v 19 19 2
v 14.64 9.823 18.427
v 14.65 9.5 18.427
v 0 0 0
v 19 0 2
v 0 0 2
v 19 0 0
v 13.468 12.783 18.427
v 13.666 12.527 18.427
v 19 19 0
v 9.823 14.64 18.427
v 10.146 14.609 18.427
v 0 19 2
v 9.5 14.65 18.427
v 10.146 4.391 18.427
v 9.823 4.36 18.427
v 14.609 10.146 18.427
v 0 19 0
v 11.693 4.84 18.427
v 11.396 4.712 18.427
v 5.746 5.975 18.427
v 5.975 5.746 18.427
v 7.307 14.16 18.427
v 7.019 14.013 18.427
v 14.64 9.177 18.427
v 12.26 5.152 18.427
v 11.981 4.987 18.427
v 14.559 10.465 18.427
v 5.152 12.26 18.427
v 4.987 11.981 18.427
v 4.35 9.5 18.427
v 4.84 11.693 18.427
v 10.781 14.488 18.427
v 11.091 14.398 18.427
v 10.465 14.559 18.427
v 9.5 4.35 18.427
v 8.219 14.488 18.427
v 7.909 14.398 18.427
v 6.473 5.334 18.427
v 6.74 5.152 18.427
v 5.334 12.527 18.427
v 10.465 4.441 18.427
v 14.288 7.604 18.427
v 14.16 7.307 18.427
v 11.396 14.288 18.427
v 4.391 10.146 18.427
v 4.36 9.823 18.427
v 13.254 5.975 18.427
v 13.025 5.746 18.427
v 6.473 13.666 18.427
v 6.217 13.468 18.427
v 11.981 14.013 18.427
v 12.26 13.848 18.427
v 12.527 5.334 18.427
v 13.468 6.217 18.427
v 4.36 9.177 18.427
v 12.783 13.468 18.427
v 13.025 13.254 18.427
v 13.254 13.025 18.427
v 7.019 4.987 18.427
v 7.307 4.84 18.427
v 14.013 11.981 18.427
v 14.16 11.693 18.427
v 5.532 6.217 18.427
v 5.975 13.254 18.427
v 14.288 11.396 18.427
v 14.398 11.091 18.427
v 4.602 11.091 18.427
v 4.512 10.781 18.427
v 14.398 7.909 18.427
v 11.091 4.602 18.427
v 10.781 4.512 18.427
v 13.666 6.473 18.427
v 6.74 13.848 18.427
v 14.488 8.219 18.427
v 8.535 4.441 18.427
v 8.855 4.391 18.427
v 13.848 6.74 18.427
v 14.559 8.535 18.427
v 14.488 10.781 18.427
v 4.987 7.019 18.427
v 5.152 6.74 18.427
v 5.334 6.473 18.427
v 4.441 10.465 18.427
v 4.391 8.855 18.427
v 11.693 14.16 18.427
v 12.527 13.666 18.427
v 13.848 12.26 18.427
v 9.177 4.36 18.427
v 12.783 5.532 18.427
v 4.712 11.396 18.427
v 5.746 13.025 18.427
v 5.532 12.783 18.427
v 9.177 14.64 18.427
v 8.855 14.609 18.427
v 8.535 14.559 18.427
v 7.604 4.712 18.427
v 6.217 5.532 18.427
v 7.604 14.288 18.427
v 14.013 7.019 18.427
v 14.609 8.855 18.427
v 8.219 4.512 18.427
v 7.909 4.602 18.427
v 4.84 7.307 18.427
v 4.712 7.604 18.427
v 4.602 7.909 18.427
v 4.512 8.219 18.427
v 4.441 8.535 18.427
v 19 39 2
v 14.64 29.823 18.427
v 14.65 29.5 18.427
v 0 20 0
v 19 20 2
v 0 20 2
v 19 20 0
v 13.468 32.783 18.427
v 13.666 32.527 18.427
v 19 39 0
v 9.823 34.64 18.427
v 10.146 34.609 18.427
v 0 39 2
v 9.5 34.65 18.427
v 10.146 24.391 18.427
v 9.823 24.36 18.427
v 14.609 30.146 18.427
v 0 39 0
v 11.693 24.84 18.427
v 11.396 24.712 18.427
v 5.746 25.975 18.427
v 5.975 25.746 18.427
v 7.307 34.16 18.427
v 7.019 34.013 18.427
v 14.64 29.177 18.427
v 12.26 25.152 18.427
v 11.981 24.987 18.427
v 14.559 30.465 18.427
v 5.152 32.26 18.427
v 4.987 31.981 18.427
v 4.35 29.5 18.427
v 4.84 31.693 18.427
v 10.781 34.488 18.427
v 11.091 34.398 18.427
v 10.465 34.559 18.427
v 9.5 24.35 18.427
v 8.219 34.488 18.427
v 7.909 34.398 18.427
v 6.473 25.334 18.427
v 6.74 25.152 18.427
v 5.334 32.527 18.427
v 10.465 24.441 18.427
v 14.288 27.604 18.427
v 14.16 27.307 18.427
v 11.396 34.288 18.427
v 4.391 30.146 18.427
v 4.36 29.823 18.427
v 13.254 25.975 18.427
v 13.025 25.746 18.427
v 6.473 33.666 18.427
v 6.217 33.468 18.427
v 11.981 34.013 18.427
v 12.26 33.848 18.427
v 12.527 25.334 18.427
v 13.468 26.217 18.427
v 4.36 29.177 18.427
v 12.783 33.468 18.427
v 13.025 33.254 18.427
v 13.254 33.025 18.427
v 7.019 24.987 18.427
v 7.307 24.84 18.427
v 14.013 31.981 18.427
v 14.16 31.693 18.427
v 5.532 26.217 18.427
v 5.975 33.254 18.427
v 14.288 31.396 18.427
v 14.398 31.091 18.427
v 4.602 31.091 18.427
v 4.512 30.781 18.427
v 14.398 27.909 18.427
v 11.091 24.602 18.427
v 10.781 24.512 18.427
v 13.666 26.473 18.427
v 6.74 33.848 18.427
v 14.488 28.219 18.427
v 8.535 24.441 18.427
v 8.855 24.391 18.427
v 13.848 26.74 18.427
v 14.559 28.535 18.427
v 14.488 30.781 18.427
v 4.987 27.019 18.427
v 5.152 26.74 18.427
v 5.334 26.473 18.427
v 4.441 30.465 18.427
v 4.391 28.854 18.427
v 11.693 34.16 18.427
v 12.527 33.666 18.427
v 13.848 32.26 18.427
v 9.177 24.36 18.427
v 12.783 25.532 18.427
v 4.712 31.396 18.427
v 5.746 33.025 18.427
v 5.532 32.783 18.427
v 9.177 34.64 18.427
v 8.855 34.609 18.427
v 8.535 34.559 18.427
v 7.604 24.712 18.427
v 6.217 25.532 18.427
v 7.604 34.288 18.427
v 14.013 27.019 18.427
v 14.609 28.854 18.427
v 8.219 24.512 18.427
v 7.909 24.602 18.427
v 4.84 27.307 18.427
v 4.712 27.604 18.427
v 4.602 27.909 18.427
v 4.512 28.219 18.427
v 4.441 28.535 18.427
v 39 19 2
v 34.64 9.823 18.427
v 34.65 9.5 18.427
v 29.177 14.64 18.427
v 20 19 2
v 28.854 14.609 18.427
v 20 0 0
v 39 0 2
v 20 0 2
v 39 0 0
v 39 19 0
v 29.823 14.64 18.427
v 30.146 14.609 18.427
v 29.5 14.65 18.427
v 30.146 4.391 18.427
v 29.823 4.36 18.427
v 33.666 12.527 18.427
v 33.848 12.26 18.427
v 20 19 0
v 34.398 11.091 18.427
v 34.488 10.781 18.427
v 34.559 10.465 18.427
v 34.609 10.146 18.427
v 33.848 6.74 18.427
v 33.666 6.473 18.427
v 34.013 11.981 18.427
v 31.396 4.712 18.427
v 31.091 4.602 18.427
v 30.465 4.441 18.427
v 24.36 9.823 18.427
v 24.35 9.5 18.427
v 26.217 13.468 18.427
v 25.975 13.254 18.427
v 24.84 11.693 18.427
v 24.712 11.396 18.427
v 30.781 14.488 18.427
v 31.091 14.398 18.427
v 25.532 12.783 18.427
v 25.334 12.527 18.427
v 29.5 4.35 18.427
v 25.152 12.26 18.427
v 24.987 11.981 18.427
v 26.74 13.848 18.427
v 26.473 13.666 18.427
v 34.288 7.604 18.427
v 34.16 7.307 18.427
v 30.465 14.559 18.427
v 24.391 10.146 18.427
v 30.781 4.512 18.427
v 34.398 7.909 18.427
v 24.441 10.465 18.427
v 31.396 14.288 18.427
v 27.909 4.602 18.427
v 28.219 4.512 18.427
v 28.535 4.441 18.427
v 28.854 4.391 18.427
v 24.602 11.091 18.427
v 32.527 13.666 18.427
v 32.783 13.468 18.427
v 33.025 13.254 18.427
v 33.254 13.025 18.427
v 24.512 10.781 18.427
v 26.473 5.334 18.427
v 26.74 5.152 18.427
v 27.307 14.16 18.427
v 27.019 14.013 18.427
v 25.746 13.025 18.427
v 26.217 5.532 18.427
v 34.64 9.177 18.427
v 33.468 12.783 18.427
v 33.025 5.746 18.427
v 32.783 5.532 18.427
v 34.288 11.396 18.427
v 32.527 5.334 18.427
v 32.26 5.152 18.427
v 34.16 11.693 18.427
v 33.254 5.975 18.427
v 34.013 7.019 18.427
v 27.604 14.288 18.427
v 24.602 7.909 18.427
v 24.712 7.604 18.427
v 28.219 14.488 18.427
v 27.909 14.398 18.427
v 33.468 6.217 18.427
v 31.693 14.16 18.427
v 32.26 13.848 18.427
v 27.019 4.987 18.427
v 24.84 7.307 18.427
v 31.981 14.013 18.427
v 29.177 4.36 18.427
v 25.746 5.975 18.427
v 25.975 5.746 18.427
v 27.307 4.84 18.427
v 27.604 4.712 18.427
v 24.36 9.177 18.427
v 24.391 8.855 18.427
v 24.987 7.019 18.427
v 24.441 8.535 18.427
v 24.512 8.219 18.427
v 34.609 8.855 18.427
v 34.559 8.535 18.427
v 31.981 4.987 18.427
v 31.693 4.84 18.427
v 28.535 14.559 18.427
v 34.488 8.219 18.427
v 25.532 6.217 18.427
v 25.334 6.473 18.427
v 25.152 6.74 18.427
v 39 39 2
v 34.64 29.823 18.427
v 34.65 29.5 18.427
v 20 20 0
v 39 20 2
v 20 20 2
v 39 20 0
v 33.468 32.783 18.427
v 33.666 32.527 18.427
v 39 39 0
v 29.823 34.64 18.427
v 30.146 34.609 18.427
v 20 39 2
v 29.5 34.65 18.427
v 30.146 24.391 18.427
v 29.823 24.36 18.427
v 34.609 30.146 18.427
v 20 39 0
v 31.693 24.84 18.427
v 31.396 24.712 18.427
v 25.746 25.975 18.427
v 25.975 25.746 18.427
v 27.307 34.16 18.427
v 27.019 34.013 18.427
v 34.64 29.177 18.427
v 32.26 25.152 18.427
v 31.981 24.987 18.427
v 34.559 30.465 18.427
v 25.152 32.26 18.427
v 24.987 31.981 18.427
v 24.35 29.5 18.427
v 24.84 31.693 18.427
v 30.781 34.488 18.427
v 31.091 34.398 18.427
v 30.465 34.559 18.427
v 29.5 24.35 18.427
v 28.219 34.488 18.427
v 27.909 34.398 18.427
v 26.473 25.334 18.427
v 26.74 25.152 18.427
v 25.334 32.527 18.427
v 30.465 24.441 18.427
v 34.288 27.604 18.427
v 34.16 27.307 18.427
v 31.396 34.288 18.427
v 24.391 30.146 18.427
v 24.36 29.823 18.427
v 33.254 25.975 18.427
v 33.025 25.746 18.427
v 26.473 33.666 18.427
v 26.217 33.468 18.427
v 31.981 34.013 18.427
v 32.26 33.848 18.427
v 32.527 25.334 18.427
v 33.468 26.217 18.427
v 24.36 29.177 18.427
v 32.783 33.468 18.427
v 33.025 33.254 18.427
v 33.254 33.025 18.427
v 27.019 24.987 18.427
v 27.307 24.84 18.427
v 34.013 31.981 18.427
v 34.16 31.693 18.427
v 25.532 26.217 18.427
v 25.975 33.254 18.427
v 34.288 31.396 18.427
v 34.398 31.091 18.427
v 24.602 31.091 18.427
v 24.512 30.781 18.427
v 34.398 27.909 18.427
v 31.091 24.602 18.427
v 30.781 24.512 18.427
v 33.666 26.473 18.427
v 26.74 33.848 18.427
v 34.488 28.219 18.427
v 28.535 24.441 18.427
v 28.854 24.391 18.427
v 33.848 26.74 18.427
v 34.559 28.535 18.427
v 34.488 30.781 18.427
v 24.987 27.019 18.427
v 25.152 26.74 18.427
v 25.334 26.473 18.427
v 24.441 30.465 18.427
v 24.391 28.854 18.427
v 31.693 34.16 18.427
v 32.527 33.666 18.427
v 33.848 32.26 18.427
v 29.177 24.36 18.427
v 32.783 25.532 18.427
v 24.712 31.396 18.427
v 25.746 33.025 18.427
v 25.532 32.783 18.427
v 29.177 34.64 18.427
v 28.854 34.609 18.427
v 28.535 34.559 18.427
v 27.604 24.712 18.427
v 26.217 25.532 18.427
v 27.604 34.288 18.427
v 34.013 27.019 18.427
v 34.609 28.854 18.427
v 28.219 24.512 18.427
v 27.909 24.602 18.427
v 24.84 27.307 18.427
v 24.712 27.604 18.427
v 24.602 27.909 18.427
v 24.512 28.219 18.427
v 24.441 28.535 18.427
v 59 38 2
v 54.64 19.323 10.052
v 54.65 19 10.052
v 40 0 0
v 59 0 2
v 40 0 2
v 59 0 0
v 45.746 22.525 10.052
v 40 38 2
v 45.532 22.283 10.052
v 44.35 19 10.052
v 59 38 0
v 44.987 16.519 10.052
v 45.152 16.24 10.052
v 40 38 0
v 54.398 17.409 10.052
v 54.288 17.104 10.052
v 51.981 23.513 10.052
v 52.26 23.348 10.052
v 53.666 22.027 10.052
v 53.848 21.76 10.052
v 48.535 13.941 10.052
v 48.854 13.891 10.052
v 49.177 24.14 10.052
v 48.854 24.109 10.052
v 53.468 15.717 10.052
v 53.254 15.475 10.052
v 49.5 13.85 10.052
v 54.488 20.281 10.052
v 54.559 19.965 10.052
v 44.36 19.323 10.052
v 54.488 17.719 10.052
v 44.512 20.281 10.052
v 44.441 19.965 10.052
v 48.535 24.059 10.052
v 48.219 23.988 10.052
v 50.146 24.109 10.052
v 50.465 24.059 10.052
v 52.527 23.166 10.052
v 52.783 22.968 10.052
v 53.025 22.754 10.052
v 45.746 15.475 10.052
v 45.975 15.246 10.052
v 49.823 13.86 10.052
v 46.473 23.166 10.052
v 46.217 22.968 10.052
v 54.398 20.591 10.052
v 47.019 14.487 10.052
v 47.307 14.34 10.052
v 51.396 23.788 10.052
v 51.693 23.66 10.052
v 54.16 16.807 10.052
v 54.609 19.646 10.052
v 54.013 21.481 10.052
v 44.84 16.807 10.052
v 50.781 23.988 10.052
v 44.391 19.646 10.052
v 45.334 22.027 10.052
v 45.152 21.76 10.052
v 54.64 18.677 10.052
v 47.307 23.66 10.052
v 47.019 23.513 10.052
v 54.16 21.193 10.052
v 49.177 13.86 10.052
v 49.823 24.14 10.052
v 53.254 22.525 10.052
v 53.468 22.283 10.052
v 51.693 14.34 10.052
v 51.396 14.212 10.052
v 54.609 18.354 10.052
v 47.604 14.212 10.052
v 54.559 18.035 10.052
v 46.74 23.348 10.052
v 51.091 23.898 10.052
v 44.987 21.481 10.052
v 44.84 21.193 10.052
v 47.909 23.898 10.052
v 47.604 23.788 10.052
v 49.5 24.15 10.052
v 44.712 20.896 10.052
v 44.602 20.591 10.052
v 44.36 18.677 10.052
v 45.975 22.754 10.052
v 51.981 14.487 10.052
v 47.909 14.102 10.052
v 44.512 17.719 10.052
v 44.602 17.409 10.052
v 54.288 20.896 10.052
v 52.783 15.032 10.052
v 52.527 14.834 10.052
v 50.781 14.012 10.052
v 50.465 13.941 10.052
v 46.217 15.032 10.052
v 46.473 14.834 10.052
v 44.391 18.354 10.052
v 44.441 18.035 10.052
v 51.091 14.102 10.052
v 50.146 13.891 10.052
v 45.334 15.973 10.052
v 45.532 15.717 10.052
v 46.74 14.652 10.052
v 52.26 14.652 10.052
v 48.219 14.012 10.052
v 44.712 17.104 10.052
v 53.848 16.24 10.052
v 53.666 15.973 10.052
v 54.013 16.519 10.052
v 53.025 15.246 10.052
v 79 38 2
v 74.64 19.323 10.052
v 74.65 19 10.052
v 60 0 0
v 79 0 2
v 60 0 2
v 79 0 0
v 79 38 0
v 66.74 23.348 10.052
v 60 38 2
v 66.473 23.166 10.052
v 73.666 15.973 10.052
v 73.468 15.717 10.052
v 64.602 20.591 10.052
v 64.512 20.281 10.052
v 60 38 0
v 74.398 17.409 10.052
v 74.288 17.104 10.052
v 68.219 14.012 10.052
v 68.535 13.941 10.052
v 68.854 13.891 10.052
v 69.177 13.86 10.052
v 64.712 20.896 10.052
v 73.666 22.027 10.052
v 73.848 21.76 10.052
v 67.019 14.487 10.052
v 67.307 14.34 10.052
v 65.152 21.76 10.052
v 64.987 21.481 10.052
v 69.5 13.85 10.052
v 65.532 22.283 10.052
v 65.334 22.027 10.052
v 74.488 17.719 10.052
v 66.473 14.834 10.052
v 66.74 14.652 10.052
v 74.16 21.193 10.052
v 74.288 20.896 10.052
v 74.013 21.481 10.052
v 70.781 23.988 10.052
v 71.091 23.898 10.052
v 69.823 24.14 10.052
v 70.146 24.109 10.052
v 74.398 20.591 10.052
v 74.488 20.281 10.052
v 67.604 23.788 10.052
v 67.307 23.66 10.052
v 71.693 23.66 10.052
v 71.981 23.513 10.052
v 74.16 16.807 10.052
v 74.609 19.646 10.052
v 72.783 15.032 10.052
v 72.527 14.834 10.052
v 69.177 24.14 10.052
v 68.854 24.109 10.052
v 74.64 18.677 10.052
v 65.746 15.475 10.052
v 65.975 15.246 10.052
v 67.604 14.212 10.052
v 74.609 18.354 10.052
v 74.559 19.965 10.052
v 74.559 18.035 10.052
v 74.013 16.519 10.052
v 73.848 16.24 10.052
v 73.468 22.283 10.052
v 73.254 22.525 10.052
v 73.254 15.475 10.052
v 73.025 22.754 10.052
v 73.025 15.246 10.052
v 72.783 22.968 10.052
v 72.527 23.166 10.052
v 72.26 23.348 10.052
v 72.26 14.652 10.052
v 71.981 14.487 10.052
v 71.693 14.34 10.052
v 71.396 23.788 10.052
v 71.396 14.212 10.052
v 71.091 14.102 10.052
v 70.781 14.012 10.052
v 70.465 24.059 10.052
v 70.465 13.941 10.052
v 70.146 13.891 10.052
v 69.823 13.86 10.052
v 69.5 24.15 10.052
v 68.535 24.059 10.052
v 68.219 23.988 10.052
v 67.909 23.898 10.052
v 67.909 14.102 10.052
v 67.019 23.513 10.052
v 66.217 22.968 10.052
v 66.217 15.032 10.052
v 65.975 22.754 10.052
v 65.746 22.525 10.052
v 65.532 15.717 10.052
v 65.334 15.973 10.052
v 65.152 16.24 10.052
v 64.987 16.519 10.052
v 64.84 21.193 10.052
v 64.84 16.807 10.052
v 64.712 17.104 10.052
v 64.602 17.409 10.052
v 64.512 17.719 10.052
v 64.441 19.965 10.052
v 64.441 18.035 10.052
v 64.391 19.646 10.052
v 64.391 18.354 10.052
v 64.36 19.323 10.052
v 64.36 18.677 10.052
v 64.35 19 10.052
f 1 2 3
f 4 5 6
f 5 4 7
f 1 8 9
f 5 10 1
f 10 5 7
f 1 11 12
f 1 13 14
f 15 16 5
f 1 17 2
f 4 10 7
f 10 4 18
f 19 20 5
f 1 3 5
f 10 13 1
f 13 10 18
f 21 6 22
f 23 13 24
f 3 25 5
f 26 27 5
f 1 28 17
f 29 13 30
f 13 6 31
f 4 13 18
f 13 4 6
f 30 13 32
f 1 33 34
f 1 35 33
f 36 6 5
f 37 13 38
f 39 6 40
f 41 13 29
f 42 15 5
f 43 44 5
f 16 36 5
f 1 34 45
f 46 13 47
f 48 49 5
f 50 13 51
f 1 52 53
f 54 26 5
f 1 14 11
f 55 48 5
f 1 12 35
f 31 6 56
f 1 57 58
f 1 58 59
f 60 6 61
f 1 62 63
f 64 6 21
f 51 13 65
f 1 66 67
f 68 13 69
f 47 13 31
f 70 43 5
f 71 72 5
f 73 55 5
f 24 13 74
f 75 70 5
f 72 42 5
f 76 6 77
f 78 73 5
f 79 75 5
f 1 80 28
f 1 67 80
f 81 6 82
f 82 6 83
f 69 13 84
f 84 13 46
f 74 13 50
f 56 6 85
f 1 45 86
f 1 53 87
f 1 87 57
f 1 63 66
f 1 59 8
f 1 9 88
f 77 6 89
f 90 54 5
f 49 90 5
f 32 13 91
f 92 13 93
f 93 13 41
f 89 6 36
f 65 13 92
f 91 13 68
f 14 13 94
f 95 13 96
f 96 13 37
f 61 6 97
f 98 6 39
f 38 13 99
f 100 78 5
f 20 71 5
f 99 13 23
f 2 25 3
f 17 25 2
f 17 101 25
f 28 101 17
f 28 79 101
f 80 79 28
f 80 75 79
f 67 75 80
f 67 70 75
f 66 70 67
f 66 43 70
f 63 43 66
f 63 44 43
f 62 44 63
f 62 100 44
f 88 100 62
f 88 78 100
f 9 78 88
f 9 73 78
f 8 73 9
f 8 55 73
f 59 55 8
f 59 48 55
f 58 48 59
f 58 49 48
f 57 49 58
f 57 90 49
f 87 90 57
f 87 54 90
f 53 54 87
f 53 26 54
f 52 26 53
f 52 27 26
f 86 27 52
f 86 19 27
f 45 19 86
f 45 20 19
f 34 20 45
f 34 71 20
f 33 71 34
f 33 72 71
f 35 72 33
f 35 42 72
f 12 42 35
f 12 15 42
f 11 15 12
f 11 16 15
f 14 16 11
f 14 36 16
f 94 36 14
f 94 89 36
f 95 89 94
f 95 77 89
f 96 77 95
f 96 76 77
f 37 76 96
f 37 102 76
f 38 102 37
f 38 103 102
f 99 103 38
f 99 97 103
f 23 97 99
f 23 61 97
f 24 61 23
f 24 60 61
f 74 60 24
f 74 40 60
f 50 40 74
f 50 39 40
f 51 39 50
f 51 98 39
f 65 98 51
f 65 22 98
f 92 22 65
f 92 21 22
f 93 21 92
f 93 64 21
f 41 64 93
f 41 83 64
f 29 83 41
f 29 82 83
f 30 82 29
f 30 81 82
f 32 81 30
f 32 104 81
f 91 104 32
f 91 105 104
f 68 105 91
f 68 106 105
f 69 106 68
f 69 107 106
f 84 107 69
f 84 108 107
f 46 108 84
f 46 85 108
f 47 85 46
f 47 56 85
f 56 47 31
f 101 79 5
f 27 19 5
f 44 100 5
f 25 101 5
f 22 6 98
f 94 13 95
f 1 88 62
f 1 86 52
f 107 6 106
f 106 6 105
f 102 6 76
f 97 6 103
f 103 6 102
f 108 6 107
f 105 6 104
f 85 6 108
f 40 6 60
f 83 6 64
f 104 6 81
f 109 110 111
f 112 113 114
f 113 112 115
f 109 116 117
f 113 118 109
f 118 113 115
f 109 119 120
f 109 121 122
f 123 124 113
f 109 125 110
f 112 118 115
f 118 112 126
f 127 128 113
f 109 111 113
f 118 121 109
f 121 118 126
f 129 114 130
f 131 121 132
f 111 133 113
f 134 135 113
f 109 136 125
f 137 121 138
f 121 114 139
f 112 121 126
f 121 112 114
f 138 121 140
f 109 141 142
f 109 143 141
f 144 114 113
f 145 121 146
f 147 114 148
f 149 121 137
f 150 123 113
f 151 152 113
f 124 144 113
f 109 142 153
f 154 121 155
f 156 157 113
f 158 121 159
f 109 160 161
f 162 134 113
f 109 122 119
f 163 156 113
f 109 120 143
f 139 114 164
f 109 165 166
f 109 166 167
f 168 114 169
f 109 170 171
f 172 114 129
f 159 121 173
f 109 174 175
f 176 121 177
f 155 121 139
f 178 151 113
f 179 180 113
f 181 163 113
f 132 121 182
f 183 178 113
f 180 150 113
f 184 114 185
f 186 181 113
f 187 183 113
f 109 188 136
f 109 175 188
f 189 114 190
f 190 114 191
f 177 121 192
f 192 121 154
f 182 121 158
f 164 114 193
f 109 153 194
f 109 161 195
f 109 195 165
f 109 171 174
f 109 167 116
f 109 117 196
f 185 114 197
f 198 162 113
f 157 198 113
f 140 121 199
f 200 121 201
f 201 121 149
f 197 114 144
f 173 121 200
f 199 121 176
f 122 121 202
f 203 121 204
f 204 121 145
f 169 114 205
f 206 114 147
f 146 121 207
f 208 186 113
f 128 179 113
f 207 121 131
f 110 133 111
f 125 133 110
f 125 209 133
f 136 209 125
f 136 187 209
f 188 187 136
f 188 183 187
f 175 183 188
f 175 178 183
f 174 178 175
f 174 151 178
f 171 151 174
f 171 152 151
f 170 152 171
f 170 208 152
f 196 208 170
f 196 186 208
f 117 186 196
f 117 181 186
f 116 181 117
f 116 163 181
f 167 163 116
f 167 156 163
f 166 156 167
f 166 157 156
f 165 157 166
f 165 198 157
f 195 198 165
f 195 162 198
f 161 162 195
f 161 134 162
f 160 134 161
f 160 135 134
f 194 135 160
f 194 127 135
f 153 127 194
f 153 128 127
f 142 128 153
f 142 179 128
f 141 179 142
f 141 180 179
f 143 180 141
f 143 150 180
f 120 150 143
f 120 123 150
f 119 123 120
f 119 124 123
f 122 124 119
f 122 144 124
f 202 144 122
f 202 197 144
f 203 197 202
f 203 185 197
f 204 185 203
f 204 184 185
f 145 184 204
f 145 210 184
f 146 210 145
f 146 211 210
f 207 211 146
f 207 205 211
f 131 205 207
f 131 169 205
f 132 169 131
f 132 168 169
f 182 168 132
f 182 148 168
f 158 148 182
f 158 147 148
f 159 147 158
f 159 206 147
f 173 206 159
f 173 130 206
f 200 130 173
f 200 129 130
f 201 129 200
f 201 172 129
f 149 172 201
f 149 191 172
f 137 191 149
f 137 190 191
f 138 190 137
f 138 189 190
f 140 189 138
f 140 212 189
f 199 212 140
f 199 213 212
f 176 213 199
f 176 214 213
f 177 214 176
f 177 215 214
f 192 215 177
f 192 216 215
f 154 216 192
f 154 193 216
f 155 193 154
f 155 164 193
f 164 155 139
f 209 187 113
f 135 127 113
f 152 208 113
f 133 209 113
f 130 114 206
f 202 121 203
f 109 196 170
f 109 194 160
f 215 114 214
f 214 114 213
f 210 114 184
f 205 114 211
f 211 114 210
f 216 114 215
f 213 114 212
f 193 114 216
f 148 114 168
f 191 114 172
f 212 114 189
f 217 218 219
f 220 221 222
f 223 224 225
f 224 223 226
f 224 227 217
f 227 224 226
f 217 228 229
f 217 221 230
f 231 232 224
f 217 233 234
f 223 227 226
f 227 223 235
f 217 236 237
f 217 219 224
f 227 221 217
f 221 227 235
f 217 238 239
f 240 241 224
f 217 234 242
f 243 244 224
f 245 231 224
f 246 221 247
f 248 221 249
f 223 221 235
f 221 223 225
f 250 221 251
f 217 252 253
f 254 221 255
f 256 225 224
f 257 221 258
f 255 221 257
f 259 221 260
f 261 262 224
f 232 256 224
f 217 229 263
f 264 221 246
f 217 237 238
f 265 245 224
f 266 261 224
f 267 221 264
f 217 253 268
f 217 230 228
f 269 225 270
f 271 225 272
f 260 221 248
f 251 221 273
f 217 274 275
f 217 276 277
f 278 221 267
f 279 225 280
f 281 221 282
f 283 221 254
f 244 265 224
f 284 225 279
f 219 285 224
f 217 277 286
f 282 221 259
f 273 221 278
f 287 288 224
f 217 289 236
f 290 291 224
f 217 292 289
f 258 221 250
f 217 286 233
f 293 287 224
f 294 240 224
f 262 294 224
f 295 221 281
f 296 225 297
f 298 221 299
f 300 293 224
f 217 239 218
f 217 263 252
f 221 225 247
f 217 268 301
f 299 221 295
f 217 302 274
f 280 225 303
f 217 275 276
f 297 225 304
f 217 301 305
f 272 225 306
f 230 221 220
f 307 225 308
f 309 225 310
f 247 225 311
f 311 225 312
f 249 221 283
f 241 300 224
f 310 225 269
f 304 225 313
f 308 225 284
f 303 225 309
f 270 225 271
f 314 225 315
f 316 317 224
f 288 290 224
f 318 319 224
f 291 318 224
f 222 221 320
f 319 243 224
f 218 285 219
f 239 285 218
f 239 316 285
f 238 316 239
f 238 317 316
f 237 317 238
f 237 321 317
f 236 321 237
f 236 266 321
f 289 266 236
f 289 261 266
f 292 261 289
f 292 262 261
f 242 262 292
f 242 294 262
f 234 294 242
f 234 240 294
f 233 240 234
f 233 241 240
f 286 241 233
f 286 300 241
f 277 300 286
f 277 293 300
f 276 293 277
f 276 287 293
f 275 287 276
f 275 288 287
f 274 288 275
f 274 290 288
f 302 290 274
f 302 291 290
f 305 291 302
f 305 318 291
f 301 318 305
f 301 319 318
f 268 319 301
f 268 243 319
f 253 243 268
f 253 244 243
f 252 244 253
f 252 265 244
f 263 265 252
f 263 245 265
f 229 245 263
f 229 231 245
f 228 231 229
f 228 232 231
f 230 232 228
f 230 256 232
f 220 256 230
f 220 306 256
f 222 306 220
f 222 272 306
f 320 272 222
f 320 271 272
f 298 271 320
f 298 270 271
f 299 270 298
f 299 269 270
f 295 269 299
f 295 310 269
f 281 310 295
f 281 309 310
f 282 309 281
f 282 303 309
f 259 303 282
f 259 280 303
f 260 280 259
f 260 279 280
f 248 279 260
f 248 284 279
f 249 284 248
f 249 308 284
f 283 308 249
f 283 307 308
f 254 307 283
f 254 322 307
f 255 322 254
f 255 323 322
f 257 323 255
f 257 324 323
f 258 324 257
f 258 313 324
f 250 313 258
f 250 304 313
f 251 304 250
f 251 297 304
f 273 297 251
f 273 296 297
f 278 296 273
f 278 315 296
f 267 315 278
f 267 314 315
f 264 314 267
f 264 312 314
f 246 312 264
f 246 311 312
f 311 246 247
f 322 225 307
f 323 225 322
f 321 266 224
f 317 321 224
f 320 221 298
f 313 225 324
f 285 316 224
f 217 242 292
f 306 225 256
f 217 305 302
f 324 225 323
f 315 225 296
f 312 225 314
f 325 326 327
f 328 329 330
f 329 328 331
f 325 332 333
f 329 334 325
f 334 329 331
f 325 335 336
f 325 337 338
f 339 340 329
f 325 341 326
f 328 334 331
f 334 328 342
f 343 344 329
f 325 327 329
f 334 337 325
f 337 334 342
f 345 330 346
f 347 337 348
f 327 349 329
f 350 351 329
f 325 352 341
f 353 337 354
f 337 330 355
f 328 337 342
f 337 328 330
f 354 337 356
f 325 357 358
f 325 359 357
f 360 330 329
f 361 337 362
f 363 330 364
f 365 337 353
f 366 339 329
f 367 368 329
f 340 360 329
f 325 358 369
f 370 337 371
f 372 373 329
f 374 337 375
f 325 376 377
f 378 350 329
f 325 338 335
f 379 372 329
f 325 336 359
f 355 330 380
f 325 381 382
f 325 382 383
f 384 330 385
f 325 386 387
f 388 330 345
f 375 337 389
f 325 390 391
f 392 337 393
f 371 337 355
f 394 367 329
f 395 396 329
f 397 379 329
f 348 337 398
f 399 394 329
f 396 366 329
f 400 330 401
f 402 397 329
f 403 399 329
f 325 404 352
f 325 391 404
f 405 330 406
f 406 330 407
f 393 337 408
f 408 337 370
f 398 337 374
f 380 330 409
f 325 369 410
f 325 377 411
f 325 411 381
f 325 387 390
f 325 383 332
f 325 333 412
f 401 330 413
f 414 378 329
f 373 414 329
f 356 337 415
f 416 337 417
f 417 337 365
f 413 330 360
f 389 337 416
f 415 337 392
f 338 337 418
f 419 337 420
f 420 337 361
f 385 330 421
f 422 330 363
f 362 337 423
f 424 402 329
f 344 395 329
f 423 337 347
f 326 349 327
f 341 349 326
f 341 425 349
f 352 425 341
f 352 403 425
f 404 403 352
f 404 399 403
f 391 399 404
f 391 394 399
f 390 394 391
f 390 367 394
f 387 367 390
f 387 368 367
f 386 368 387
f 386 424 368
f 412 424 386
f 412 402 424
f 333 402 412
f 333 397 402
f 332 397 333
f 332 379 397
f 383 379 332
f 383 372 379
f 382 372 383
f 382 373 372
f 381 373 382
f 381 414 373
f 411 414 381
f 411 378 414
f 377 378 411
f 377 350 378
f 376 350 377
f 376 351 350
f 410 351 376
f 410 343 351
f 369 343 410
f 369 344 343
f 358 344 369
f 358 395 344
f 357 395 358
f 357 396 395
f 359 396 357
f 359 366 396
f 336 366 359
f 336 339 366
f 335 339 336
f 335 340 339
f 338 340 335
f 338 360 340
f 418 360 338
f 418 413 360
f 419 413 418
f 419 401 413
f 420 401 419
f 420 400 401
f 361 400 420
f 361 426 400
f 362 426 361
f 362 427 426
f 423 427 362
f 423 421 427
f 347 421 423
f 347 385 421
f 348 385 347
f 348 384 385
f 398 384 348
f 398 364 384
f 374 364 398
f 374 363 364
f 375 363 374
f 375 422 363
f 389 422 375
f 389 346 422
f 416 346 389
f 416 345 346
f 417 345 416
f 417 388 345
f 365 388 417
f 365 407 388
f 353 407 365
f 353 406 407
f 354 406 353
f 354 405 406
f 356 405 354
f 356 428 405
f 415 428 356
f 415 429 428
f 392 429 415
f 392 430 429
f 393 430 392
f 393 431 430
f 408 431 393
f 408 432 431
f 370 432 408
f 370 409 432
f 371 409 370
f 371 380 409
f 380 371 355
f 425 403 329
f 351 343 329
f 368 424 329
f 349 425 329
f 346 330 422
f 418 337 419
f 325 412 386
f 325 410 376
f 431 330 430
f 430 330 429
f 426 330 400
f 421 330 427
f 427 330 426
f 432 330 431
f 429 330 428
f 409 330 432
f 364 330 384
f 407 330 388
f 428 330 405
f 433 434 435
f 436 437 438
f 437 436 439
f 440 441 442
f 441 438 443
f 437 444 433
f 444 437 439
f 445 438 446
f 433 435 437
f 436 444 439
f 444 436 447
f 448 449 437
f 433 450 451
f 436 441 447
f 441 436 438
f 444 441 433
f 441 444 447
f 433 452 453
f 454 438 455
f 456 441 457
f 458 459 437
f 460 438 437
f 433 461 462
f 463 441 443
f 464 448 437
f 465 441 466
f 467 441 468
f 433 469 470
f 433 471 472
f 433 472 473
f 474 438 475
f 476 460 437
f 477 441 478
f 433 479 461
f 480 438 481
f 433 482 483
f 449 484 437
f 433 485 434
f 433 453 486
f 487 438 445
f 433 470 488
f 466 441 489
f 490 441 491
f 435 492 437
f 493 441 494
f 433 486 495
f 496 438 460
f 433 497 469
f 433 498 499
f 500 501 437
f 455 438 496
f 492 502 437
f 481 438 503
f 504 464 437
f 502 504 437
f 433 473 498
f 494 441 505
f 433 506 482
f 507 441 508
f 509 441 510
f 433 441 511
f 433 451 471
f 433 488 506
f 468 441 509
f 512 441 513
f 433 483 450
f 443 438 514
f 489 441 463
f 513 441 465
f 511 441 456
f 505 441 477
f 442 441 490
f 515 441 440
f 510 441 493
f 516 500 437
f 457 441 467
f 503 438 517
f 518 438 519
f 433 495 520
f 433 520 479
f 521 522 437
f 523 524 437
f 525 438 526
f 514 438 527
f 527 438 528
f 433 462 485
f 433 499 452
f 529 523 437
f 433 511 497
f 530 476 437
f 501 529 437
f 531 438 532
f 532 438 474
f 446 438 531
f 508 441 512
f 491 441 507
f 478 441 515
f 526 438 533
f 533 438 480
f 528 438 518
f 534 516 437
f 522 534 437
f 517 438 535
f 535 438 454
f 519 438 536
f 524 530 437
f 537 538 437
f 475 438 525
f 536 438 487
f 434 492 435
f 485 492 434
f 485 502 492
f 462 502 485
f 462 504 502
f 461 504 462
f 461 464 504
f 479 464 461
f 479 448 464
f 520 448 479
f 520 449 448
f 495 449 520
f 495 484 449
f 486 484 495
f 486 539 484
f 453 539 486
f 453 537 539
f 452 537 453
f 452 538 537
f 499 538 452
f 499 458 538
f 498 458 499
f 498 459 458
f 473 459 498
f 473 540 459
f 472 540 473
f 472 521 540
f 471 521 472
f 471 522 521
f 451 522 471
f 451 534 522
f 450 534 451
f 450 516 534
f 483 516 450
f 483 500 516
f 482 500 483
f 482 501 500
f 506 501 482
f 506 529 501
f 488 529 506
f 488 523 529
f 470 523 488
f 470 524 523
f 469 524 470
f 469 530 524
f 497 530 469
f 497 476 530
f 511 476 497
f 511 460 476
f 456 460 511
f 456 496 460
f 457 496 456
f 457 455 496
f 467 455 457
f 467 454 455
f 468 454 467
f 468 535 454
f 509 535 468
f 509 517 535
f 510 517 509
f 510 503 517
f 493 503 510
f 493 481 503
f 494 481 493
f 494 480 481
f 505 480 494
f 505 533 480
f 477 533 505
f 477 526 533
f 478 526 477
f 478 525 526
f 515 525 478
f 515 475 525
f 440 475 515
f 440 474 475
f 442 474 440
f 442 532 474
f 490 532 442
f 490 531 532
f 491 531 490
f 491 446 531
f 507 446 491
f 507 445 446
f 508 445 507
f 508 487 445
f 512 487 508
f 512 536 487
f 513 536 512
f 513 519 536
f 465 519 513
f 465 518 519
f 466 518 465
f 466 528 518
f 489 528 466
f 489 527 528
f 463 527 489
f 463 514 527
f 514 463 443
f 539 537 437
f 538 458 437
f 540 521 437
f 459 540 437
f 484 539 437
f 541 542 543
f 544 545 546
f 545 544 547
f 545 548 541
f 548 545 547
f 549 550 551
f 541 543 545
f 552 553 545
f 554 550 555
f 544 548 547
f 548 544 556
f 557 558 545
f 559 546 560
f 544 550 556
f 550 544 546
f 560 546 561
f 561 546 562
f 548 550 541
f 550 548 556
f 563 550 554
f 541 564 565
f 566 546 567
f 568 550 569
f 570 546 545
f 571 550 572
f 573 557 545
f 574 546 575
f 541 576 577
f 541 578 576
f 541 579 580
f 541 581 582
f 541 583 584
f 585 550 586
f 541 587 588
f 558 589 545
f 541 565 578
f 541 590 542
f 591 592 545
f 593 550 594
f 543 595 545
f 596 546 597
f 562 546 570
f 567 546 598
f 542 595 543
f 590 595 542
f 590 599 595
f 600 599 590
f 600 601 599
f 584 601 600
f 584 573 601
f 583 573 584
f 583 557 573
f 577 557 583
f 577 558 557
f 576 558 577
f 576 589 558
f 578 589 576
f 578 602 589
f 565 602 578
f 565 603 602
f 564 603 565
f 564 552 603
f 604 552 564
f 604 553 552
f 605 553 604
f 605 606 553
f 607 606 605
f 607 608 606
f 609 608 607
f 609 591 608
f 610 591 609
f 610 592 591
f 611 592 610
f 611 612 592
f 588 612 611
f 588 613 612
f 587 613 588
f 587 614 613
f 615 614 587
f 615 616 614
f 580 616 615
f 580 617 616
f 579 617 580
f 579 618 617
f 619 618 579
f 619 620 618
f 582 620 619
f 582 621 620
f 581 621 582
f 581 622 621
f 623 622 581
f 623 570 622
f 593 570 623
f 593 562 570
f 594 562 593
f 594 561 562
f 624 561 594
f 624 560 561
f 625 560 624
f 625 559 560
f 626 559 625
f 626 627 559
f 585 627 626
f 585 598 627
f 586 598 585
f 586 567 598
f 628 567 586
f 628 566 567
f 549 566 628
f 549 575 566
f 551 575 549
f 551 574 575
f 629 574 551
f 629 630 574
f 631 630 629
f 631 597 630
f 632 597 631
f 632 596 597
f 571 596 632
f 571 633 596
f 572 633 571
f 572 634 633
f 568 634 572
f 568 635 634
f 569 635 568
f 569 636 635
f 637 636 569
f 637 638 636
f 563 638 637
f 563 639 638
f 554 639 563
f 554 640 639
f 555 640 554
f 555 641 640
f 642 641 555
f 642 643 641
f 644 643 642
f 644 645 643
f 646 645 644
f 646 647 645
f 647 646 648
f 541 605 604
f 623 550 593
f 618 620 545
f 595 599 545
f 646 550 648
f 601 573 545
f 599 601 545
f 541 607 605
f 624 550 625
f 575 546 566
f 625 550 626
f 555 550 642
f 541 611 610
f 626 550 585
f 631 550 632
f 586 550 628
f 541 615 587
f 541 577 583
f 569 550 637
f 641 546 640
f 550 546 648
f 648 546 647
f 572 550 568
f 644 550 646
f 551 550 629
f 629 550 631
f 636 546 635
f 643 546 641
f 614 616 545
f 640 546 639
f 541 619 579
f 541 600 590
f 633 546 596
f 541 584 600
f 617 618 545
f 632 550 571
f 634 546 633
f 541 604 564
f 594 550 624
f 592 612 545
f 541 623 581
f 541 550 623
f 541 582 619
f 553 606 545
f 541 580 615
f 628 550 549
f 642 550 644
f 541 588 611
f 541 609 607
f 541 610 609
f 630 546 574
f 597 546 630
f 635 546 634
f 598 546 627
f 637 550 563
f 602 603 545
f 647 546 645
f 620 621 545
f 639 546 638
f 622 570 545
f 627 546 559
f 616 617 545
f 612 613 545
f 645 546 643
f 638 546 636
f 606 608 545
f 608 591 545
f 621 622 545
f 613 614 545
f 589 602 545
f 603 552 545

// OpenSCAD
//
// ktRack31
//
//


gap1 = 0.001;
gap2 = 0.002;
th = 2;
W = 19;
WW = W+1;
hoot_r = 8.3/2+1;


R = 10; //keyboard angle (degrees)



translate([WW*0, W, 0]) STAND();
translate([WW*0, W+WW, 0]) STAND();
translate([WW*1, W, 0]) STAND();
translate([WW*1, W+WW, 0]) STAND();
translate([WW*2, W*2, 0]) STAND_ISO();
translate([WW*3, W*2, 0]) STAND_ISO();


module STAND(ROW=6)
{
    Y = ROW*W-W/2;
    hull()
    {
        translate([W/2, -W/2, Y*tan(R)]) cylinder(r=hoot_r, h=gap1, $fn=100);
        translate([0, -W, 0]) translate([0, 0, 0]) cube([W, W, th]);
    }
}

module STAND_ISO(ROW=4)
{
    Y = ROW*W-W;
    hull()
    {
        translate([W/2, -W, Y*tan(R)]) cylinder(r=hoot_r, h=gap1, $fn=100);
        translate([0, -W*2, 0]) translate([0, 0, 0]) cube([W, W*2, th]);
    }
}




/*
ROW = 6; //ktKBD95
//ROW = 4; //ktKBD53

translate([(W+2)*0, (W+2)*0, 0]) STAND_RL1A(19*ROW);
translate([(W+2)*1, (W+2)*0, 0]) STAND_RL1A(19*ROW);
translate([(W+2)*0, (W+2)*1, 0]) STAND_RL1A(19*ROW);
translate([(W+2)*1, (W+2)*1, 0]) STAND_RL1A(19*ROW);



module STAND_RL1A(_Y=0, OFFSET=0)
{
    Z = (_Y-W/2)*sin(R)-0.5;
    difference()
    {
        hull()
        {
            translate([W/2, W/2, Z]) rotate([R, 0, 0,]) cylinder(r=8.3/2, h=gap1, $fn=100);
            translate([0, 0, 0]) cube([W, W, th]);
        }
        translate([W/2-1, 0, th]) cube([2, 3, 30]);
    }
    translate([W/2, W/2, Z]) rotate([R, 0, 0,]) cylinder(r=8.3/2, h=0.5, $fn=100);
}
*/
